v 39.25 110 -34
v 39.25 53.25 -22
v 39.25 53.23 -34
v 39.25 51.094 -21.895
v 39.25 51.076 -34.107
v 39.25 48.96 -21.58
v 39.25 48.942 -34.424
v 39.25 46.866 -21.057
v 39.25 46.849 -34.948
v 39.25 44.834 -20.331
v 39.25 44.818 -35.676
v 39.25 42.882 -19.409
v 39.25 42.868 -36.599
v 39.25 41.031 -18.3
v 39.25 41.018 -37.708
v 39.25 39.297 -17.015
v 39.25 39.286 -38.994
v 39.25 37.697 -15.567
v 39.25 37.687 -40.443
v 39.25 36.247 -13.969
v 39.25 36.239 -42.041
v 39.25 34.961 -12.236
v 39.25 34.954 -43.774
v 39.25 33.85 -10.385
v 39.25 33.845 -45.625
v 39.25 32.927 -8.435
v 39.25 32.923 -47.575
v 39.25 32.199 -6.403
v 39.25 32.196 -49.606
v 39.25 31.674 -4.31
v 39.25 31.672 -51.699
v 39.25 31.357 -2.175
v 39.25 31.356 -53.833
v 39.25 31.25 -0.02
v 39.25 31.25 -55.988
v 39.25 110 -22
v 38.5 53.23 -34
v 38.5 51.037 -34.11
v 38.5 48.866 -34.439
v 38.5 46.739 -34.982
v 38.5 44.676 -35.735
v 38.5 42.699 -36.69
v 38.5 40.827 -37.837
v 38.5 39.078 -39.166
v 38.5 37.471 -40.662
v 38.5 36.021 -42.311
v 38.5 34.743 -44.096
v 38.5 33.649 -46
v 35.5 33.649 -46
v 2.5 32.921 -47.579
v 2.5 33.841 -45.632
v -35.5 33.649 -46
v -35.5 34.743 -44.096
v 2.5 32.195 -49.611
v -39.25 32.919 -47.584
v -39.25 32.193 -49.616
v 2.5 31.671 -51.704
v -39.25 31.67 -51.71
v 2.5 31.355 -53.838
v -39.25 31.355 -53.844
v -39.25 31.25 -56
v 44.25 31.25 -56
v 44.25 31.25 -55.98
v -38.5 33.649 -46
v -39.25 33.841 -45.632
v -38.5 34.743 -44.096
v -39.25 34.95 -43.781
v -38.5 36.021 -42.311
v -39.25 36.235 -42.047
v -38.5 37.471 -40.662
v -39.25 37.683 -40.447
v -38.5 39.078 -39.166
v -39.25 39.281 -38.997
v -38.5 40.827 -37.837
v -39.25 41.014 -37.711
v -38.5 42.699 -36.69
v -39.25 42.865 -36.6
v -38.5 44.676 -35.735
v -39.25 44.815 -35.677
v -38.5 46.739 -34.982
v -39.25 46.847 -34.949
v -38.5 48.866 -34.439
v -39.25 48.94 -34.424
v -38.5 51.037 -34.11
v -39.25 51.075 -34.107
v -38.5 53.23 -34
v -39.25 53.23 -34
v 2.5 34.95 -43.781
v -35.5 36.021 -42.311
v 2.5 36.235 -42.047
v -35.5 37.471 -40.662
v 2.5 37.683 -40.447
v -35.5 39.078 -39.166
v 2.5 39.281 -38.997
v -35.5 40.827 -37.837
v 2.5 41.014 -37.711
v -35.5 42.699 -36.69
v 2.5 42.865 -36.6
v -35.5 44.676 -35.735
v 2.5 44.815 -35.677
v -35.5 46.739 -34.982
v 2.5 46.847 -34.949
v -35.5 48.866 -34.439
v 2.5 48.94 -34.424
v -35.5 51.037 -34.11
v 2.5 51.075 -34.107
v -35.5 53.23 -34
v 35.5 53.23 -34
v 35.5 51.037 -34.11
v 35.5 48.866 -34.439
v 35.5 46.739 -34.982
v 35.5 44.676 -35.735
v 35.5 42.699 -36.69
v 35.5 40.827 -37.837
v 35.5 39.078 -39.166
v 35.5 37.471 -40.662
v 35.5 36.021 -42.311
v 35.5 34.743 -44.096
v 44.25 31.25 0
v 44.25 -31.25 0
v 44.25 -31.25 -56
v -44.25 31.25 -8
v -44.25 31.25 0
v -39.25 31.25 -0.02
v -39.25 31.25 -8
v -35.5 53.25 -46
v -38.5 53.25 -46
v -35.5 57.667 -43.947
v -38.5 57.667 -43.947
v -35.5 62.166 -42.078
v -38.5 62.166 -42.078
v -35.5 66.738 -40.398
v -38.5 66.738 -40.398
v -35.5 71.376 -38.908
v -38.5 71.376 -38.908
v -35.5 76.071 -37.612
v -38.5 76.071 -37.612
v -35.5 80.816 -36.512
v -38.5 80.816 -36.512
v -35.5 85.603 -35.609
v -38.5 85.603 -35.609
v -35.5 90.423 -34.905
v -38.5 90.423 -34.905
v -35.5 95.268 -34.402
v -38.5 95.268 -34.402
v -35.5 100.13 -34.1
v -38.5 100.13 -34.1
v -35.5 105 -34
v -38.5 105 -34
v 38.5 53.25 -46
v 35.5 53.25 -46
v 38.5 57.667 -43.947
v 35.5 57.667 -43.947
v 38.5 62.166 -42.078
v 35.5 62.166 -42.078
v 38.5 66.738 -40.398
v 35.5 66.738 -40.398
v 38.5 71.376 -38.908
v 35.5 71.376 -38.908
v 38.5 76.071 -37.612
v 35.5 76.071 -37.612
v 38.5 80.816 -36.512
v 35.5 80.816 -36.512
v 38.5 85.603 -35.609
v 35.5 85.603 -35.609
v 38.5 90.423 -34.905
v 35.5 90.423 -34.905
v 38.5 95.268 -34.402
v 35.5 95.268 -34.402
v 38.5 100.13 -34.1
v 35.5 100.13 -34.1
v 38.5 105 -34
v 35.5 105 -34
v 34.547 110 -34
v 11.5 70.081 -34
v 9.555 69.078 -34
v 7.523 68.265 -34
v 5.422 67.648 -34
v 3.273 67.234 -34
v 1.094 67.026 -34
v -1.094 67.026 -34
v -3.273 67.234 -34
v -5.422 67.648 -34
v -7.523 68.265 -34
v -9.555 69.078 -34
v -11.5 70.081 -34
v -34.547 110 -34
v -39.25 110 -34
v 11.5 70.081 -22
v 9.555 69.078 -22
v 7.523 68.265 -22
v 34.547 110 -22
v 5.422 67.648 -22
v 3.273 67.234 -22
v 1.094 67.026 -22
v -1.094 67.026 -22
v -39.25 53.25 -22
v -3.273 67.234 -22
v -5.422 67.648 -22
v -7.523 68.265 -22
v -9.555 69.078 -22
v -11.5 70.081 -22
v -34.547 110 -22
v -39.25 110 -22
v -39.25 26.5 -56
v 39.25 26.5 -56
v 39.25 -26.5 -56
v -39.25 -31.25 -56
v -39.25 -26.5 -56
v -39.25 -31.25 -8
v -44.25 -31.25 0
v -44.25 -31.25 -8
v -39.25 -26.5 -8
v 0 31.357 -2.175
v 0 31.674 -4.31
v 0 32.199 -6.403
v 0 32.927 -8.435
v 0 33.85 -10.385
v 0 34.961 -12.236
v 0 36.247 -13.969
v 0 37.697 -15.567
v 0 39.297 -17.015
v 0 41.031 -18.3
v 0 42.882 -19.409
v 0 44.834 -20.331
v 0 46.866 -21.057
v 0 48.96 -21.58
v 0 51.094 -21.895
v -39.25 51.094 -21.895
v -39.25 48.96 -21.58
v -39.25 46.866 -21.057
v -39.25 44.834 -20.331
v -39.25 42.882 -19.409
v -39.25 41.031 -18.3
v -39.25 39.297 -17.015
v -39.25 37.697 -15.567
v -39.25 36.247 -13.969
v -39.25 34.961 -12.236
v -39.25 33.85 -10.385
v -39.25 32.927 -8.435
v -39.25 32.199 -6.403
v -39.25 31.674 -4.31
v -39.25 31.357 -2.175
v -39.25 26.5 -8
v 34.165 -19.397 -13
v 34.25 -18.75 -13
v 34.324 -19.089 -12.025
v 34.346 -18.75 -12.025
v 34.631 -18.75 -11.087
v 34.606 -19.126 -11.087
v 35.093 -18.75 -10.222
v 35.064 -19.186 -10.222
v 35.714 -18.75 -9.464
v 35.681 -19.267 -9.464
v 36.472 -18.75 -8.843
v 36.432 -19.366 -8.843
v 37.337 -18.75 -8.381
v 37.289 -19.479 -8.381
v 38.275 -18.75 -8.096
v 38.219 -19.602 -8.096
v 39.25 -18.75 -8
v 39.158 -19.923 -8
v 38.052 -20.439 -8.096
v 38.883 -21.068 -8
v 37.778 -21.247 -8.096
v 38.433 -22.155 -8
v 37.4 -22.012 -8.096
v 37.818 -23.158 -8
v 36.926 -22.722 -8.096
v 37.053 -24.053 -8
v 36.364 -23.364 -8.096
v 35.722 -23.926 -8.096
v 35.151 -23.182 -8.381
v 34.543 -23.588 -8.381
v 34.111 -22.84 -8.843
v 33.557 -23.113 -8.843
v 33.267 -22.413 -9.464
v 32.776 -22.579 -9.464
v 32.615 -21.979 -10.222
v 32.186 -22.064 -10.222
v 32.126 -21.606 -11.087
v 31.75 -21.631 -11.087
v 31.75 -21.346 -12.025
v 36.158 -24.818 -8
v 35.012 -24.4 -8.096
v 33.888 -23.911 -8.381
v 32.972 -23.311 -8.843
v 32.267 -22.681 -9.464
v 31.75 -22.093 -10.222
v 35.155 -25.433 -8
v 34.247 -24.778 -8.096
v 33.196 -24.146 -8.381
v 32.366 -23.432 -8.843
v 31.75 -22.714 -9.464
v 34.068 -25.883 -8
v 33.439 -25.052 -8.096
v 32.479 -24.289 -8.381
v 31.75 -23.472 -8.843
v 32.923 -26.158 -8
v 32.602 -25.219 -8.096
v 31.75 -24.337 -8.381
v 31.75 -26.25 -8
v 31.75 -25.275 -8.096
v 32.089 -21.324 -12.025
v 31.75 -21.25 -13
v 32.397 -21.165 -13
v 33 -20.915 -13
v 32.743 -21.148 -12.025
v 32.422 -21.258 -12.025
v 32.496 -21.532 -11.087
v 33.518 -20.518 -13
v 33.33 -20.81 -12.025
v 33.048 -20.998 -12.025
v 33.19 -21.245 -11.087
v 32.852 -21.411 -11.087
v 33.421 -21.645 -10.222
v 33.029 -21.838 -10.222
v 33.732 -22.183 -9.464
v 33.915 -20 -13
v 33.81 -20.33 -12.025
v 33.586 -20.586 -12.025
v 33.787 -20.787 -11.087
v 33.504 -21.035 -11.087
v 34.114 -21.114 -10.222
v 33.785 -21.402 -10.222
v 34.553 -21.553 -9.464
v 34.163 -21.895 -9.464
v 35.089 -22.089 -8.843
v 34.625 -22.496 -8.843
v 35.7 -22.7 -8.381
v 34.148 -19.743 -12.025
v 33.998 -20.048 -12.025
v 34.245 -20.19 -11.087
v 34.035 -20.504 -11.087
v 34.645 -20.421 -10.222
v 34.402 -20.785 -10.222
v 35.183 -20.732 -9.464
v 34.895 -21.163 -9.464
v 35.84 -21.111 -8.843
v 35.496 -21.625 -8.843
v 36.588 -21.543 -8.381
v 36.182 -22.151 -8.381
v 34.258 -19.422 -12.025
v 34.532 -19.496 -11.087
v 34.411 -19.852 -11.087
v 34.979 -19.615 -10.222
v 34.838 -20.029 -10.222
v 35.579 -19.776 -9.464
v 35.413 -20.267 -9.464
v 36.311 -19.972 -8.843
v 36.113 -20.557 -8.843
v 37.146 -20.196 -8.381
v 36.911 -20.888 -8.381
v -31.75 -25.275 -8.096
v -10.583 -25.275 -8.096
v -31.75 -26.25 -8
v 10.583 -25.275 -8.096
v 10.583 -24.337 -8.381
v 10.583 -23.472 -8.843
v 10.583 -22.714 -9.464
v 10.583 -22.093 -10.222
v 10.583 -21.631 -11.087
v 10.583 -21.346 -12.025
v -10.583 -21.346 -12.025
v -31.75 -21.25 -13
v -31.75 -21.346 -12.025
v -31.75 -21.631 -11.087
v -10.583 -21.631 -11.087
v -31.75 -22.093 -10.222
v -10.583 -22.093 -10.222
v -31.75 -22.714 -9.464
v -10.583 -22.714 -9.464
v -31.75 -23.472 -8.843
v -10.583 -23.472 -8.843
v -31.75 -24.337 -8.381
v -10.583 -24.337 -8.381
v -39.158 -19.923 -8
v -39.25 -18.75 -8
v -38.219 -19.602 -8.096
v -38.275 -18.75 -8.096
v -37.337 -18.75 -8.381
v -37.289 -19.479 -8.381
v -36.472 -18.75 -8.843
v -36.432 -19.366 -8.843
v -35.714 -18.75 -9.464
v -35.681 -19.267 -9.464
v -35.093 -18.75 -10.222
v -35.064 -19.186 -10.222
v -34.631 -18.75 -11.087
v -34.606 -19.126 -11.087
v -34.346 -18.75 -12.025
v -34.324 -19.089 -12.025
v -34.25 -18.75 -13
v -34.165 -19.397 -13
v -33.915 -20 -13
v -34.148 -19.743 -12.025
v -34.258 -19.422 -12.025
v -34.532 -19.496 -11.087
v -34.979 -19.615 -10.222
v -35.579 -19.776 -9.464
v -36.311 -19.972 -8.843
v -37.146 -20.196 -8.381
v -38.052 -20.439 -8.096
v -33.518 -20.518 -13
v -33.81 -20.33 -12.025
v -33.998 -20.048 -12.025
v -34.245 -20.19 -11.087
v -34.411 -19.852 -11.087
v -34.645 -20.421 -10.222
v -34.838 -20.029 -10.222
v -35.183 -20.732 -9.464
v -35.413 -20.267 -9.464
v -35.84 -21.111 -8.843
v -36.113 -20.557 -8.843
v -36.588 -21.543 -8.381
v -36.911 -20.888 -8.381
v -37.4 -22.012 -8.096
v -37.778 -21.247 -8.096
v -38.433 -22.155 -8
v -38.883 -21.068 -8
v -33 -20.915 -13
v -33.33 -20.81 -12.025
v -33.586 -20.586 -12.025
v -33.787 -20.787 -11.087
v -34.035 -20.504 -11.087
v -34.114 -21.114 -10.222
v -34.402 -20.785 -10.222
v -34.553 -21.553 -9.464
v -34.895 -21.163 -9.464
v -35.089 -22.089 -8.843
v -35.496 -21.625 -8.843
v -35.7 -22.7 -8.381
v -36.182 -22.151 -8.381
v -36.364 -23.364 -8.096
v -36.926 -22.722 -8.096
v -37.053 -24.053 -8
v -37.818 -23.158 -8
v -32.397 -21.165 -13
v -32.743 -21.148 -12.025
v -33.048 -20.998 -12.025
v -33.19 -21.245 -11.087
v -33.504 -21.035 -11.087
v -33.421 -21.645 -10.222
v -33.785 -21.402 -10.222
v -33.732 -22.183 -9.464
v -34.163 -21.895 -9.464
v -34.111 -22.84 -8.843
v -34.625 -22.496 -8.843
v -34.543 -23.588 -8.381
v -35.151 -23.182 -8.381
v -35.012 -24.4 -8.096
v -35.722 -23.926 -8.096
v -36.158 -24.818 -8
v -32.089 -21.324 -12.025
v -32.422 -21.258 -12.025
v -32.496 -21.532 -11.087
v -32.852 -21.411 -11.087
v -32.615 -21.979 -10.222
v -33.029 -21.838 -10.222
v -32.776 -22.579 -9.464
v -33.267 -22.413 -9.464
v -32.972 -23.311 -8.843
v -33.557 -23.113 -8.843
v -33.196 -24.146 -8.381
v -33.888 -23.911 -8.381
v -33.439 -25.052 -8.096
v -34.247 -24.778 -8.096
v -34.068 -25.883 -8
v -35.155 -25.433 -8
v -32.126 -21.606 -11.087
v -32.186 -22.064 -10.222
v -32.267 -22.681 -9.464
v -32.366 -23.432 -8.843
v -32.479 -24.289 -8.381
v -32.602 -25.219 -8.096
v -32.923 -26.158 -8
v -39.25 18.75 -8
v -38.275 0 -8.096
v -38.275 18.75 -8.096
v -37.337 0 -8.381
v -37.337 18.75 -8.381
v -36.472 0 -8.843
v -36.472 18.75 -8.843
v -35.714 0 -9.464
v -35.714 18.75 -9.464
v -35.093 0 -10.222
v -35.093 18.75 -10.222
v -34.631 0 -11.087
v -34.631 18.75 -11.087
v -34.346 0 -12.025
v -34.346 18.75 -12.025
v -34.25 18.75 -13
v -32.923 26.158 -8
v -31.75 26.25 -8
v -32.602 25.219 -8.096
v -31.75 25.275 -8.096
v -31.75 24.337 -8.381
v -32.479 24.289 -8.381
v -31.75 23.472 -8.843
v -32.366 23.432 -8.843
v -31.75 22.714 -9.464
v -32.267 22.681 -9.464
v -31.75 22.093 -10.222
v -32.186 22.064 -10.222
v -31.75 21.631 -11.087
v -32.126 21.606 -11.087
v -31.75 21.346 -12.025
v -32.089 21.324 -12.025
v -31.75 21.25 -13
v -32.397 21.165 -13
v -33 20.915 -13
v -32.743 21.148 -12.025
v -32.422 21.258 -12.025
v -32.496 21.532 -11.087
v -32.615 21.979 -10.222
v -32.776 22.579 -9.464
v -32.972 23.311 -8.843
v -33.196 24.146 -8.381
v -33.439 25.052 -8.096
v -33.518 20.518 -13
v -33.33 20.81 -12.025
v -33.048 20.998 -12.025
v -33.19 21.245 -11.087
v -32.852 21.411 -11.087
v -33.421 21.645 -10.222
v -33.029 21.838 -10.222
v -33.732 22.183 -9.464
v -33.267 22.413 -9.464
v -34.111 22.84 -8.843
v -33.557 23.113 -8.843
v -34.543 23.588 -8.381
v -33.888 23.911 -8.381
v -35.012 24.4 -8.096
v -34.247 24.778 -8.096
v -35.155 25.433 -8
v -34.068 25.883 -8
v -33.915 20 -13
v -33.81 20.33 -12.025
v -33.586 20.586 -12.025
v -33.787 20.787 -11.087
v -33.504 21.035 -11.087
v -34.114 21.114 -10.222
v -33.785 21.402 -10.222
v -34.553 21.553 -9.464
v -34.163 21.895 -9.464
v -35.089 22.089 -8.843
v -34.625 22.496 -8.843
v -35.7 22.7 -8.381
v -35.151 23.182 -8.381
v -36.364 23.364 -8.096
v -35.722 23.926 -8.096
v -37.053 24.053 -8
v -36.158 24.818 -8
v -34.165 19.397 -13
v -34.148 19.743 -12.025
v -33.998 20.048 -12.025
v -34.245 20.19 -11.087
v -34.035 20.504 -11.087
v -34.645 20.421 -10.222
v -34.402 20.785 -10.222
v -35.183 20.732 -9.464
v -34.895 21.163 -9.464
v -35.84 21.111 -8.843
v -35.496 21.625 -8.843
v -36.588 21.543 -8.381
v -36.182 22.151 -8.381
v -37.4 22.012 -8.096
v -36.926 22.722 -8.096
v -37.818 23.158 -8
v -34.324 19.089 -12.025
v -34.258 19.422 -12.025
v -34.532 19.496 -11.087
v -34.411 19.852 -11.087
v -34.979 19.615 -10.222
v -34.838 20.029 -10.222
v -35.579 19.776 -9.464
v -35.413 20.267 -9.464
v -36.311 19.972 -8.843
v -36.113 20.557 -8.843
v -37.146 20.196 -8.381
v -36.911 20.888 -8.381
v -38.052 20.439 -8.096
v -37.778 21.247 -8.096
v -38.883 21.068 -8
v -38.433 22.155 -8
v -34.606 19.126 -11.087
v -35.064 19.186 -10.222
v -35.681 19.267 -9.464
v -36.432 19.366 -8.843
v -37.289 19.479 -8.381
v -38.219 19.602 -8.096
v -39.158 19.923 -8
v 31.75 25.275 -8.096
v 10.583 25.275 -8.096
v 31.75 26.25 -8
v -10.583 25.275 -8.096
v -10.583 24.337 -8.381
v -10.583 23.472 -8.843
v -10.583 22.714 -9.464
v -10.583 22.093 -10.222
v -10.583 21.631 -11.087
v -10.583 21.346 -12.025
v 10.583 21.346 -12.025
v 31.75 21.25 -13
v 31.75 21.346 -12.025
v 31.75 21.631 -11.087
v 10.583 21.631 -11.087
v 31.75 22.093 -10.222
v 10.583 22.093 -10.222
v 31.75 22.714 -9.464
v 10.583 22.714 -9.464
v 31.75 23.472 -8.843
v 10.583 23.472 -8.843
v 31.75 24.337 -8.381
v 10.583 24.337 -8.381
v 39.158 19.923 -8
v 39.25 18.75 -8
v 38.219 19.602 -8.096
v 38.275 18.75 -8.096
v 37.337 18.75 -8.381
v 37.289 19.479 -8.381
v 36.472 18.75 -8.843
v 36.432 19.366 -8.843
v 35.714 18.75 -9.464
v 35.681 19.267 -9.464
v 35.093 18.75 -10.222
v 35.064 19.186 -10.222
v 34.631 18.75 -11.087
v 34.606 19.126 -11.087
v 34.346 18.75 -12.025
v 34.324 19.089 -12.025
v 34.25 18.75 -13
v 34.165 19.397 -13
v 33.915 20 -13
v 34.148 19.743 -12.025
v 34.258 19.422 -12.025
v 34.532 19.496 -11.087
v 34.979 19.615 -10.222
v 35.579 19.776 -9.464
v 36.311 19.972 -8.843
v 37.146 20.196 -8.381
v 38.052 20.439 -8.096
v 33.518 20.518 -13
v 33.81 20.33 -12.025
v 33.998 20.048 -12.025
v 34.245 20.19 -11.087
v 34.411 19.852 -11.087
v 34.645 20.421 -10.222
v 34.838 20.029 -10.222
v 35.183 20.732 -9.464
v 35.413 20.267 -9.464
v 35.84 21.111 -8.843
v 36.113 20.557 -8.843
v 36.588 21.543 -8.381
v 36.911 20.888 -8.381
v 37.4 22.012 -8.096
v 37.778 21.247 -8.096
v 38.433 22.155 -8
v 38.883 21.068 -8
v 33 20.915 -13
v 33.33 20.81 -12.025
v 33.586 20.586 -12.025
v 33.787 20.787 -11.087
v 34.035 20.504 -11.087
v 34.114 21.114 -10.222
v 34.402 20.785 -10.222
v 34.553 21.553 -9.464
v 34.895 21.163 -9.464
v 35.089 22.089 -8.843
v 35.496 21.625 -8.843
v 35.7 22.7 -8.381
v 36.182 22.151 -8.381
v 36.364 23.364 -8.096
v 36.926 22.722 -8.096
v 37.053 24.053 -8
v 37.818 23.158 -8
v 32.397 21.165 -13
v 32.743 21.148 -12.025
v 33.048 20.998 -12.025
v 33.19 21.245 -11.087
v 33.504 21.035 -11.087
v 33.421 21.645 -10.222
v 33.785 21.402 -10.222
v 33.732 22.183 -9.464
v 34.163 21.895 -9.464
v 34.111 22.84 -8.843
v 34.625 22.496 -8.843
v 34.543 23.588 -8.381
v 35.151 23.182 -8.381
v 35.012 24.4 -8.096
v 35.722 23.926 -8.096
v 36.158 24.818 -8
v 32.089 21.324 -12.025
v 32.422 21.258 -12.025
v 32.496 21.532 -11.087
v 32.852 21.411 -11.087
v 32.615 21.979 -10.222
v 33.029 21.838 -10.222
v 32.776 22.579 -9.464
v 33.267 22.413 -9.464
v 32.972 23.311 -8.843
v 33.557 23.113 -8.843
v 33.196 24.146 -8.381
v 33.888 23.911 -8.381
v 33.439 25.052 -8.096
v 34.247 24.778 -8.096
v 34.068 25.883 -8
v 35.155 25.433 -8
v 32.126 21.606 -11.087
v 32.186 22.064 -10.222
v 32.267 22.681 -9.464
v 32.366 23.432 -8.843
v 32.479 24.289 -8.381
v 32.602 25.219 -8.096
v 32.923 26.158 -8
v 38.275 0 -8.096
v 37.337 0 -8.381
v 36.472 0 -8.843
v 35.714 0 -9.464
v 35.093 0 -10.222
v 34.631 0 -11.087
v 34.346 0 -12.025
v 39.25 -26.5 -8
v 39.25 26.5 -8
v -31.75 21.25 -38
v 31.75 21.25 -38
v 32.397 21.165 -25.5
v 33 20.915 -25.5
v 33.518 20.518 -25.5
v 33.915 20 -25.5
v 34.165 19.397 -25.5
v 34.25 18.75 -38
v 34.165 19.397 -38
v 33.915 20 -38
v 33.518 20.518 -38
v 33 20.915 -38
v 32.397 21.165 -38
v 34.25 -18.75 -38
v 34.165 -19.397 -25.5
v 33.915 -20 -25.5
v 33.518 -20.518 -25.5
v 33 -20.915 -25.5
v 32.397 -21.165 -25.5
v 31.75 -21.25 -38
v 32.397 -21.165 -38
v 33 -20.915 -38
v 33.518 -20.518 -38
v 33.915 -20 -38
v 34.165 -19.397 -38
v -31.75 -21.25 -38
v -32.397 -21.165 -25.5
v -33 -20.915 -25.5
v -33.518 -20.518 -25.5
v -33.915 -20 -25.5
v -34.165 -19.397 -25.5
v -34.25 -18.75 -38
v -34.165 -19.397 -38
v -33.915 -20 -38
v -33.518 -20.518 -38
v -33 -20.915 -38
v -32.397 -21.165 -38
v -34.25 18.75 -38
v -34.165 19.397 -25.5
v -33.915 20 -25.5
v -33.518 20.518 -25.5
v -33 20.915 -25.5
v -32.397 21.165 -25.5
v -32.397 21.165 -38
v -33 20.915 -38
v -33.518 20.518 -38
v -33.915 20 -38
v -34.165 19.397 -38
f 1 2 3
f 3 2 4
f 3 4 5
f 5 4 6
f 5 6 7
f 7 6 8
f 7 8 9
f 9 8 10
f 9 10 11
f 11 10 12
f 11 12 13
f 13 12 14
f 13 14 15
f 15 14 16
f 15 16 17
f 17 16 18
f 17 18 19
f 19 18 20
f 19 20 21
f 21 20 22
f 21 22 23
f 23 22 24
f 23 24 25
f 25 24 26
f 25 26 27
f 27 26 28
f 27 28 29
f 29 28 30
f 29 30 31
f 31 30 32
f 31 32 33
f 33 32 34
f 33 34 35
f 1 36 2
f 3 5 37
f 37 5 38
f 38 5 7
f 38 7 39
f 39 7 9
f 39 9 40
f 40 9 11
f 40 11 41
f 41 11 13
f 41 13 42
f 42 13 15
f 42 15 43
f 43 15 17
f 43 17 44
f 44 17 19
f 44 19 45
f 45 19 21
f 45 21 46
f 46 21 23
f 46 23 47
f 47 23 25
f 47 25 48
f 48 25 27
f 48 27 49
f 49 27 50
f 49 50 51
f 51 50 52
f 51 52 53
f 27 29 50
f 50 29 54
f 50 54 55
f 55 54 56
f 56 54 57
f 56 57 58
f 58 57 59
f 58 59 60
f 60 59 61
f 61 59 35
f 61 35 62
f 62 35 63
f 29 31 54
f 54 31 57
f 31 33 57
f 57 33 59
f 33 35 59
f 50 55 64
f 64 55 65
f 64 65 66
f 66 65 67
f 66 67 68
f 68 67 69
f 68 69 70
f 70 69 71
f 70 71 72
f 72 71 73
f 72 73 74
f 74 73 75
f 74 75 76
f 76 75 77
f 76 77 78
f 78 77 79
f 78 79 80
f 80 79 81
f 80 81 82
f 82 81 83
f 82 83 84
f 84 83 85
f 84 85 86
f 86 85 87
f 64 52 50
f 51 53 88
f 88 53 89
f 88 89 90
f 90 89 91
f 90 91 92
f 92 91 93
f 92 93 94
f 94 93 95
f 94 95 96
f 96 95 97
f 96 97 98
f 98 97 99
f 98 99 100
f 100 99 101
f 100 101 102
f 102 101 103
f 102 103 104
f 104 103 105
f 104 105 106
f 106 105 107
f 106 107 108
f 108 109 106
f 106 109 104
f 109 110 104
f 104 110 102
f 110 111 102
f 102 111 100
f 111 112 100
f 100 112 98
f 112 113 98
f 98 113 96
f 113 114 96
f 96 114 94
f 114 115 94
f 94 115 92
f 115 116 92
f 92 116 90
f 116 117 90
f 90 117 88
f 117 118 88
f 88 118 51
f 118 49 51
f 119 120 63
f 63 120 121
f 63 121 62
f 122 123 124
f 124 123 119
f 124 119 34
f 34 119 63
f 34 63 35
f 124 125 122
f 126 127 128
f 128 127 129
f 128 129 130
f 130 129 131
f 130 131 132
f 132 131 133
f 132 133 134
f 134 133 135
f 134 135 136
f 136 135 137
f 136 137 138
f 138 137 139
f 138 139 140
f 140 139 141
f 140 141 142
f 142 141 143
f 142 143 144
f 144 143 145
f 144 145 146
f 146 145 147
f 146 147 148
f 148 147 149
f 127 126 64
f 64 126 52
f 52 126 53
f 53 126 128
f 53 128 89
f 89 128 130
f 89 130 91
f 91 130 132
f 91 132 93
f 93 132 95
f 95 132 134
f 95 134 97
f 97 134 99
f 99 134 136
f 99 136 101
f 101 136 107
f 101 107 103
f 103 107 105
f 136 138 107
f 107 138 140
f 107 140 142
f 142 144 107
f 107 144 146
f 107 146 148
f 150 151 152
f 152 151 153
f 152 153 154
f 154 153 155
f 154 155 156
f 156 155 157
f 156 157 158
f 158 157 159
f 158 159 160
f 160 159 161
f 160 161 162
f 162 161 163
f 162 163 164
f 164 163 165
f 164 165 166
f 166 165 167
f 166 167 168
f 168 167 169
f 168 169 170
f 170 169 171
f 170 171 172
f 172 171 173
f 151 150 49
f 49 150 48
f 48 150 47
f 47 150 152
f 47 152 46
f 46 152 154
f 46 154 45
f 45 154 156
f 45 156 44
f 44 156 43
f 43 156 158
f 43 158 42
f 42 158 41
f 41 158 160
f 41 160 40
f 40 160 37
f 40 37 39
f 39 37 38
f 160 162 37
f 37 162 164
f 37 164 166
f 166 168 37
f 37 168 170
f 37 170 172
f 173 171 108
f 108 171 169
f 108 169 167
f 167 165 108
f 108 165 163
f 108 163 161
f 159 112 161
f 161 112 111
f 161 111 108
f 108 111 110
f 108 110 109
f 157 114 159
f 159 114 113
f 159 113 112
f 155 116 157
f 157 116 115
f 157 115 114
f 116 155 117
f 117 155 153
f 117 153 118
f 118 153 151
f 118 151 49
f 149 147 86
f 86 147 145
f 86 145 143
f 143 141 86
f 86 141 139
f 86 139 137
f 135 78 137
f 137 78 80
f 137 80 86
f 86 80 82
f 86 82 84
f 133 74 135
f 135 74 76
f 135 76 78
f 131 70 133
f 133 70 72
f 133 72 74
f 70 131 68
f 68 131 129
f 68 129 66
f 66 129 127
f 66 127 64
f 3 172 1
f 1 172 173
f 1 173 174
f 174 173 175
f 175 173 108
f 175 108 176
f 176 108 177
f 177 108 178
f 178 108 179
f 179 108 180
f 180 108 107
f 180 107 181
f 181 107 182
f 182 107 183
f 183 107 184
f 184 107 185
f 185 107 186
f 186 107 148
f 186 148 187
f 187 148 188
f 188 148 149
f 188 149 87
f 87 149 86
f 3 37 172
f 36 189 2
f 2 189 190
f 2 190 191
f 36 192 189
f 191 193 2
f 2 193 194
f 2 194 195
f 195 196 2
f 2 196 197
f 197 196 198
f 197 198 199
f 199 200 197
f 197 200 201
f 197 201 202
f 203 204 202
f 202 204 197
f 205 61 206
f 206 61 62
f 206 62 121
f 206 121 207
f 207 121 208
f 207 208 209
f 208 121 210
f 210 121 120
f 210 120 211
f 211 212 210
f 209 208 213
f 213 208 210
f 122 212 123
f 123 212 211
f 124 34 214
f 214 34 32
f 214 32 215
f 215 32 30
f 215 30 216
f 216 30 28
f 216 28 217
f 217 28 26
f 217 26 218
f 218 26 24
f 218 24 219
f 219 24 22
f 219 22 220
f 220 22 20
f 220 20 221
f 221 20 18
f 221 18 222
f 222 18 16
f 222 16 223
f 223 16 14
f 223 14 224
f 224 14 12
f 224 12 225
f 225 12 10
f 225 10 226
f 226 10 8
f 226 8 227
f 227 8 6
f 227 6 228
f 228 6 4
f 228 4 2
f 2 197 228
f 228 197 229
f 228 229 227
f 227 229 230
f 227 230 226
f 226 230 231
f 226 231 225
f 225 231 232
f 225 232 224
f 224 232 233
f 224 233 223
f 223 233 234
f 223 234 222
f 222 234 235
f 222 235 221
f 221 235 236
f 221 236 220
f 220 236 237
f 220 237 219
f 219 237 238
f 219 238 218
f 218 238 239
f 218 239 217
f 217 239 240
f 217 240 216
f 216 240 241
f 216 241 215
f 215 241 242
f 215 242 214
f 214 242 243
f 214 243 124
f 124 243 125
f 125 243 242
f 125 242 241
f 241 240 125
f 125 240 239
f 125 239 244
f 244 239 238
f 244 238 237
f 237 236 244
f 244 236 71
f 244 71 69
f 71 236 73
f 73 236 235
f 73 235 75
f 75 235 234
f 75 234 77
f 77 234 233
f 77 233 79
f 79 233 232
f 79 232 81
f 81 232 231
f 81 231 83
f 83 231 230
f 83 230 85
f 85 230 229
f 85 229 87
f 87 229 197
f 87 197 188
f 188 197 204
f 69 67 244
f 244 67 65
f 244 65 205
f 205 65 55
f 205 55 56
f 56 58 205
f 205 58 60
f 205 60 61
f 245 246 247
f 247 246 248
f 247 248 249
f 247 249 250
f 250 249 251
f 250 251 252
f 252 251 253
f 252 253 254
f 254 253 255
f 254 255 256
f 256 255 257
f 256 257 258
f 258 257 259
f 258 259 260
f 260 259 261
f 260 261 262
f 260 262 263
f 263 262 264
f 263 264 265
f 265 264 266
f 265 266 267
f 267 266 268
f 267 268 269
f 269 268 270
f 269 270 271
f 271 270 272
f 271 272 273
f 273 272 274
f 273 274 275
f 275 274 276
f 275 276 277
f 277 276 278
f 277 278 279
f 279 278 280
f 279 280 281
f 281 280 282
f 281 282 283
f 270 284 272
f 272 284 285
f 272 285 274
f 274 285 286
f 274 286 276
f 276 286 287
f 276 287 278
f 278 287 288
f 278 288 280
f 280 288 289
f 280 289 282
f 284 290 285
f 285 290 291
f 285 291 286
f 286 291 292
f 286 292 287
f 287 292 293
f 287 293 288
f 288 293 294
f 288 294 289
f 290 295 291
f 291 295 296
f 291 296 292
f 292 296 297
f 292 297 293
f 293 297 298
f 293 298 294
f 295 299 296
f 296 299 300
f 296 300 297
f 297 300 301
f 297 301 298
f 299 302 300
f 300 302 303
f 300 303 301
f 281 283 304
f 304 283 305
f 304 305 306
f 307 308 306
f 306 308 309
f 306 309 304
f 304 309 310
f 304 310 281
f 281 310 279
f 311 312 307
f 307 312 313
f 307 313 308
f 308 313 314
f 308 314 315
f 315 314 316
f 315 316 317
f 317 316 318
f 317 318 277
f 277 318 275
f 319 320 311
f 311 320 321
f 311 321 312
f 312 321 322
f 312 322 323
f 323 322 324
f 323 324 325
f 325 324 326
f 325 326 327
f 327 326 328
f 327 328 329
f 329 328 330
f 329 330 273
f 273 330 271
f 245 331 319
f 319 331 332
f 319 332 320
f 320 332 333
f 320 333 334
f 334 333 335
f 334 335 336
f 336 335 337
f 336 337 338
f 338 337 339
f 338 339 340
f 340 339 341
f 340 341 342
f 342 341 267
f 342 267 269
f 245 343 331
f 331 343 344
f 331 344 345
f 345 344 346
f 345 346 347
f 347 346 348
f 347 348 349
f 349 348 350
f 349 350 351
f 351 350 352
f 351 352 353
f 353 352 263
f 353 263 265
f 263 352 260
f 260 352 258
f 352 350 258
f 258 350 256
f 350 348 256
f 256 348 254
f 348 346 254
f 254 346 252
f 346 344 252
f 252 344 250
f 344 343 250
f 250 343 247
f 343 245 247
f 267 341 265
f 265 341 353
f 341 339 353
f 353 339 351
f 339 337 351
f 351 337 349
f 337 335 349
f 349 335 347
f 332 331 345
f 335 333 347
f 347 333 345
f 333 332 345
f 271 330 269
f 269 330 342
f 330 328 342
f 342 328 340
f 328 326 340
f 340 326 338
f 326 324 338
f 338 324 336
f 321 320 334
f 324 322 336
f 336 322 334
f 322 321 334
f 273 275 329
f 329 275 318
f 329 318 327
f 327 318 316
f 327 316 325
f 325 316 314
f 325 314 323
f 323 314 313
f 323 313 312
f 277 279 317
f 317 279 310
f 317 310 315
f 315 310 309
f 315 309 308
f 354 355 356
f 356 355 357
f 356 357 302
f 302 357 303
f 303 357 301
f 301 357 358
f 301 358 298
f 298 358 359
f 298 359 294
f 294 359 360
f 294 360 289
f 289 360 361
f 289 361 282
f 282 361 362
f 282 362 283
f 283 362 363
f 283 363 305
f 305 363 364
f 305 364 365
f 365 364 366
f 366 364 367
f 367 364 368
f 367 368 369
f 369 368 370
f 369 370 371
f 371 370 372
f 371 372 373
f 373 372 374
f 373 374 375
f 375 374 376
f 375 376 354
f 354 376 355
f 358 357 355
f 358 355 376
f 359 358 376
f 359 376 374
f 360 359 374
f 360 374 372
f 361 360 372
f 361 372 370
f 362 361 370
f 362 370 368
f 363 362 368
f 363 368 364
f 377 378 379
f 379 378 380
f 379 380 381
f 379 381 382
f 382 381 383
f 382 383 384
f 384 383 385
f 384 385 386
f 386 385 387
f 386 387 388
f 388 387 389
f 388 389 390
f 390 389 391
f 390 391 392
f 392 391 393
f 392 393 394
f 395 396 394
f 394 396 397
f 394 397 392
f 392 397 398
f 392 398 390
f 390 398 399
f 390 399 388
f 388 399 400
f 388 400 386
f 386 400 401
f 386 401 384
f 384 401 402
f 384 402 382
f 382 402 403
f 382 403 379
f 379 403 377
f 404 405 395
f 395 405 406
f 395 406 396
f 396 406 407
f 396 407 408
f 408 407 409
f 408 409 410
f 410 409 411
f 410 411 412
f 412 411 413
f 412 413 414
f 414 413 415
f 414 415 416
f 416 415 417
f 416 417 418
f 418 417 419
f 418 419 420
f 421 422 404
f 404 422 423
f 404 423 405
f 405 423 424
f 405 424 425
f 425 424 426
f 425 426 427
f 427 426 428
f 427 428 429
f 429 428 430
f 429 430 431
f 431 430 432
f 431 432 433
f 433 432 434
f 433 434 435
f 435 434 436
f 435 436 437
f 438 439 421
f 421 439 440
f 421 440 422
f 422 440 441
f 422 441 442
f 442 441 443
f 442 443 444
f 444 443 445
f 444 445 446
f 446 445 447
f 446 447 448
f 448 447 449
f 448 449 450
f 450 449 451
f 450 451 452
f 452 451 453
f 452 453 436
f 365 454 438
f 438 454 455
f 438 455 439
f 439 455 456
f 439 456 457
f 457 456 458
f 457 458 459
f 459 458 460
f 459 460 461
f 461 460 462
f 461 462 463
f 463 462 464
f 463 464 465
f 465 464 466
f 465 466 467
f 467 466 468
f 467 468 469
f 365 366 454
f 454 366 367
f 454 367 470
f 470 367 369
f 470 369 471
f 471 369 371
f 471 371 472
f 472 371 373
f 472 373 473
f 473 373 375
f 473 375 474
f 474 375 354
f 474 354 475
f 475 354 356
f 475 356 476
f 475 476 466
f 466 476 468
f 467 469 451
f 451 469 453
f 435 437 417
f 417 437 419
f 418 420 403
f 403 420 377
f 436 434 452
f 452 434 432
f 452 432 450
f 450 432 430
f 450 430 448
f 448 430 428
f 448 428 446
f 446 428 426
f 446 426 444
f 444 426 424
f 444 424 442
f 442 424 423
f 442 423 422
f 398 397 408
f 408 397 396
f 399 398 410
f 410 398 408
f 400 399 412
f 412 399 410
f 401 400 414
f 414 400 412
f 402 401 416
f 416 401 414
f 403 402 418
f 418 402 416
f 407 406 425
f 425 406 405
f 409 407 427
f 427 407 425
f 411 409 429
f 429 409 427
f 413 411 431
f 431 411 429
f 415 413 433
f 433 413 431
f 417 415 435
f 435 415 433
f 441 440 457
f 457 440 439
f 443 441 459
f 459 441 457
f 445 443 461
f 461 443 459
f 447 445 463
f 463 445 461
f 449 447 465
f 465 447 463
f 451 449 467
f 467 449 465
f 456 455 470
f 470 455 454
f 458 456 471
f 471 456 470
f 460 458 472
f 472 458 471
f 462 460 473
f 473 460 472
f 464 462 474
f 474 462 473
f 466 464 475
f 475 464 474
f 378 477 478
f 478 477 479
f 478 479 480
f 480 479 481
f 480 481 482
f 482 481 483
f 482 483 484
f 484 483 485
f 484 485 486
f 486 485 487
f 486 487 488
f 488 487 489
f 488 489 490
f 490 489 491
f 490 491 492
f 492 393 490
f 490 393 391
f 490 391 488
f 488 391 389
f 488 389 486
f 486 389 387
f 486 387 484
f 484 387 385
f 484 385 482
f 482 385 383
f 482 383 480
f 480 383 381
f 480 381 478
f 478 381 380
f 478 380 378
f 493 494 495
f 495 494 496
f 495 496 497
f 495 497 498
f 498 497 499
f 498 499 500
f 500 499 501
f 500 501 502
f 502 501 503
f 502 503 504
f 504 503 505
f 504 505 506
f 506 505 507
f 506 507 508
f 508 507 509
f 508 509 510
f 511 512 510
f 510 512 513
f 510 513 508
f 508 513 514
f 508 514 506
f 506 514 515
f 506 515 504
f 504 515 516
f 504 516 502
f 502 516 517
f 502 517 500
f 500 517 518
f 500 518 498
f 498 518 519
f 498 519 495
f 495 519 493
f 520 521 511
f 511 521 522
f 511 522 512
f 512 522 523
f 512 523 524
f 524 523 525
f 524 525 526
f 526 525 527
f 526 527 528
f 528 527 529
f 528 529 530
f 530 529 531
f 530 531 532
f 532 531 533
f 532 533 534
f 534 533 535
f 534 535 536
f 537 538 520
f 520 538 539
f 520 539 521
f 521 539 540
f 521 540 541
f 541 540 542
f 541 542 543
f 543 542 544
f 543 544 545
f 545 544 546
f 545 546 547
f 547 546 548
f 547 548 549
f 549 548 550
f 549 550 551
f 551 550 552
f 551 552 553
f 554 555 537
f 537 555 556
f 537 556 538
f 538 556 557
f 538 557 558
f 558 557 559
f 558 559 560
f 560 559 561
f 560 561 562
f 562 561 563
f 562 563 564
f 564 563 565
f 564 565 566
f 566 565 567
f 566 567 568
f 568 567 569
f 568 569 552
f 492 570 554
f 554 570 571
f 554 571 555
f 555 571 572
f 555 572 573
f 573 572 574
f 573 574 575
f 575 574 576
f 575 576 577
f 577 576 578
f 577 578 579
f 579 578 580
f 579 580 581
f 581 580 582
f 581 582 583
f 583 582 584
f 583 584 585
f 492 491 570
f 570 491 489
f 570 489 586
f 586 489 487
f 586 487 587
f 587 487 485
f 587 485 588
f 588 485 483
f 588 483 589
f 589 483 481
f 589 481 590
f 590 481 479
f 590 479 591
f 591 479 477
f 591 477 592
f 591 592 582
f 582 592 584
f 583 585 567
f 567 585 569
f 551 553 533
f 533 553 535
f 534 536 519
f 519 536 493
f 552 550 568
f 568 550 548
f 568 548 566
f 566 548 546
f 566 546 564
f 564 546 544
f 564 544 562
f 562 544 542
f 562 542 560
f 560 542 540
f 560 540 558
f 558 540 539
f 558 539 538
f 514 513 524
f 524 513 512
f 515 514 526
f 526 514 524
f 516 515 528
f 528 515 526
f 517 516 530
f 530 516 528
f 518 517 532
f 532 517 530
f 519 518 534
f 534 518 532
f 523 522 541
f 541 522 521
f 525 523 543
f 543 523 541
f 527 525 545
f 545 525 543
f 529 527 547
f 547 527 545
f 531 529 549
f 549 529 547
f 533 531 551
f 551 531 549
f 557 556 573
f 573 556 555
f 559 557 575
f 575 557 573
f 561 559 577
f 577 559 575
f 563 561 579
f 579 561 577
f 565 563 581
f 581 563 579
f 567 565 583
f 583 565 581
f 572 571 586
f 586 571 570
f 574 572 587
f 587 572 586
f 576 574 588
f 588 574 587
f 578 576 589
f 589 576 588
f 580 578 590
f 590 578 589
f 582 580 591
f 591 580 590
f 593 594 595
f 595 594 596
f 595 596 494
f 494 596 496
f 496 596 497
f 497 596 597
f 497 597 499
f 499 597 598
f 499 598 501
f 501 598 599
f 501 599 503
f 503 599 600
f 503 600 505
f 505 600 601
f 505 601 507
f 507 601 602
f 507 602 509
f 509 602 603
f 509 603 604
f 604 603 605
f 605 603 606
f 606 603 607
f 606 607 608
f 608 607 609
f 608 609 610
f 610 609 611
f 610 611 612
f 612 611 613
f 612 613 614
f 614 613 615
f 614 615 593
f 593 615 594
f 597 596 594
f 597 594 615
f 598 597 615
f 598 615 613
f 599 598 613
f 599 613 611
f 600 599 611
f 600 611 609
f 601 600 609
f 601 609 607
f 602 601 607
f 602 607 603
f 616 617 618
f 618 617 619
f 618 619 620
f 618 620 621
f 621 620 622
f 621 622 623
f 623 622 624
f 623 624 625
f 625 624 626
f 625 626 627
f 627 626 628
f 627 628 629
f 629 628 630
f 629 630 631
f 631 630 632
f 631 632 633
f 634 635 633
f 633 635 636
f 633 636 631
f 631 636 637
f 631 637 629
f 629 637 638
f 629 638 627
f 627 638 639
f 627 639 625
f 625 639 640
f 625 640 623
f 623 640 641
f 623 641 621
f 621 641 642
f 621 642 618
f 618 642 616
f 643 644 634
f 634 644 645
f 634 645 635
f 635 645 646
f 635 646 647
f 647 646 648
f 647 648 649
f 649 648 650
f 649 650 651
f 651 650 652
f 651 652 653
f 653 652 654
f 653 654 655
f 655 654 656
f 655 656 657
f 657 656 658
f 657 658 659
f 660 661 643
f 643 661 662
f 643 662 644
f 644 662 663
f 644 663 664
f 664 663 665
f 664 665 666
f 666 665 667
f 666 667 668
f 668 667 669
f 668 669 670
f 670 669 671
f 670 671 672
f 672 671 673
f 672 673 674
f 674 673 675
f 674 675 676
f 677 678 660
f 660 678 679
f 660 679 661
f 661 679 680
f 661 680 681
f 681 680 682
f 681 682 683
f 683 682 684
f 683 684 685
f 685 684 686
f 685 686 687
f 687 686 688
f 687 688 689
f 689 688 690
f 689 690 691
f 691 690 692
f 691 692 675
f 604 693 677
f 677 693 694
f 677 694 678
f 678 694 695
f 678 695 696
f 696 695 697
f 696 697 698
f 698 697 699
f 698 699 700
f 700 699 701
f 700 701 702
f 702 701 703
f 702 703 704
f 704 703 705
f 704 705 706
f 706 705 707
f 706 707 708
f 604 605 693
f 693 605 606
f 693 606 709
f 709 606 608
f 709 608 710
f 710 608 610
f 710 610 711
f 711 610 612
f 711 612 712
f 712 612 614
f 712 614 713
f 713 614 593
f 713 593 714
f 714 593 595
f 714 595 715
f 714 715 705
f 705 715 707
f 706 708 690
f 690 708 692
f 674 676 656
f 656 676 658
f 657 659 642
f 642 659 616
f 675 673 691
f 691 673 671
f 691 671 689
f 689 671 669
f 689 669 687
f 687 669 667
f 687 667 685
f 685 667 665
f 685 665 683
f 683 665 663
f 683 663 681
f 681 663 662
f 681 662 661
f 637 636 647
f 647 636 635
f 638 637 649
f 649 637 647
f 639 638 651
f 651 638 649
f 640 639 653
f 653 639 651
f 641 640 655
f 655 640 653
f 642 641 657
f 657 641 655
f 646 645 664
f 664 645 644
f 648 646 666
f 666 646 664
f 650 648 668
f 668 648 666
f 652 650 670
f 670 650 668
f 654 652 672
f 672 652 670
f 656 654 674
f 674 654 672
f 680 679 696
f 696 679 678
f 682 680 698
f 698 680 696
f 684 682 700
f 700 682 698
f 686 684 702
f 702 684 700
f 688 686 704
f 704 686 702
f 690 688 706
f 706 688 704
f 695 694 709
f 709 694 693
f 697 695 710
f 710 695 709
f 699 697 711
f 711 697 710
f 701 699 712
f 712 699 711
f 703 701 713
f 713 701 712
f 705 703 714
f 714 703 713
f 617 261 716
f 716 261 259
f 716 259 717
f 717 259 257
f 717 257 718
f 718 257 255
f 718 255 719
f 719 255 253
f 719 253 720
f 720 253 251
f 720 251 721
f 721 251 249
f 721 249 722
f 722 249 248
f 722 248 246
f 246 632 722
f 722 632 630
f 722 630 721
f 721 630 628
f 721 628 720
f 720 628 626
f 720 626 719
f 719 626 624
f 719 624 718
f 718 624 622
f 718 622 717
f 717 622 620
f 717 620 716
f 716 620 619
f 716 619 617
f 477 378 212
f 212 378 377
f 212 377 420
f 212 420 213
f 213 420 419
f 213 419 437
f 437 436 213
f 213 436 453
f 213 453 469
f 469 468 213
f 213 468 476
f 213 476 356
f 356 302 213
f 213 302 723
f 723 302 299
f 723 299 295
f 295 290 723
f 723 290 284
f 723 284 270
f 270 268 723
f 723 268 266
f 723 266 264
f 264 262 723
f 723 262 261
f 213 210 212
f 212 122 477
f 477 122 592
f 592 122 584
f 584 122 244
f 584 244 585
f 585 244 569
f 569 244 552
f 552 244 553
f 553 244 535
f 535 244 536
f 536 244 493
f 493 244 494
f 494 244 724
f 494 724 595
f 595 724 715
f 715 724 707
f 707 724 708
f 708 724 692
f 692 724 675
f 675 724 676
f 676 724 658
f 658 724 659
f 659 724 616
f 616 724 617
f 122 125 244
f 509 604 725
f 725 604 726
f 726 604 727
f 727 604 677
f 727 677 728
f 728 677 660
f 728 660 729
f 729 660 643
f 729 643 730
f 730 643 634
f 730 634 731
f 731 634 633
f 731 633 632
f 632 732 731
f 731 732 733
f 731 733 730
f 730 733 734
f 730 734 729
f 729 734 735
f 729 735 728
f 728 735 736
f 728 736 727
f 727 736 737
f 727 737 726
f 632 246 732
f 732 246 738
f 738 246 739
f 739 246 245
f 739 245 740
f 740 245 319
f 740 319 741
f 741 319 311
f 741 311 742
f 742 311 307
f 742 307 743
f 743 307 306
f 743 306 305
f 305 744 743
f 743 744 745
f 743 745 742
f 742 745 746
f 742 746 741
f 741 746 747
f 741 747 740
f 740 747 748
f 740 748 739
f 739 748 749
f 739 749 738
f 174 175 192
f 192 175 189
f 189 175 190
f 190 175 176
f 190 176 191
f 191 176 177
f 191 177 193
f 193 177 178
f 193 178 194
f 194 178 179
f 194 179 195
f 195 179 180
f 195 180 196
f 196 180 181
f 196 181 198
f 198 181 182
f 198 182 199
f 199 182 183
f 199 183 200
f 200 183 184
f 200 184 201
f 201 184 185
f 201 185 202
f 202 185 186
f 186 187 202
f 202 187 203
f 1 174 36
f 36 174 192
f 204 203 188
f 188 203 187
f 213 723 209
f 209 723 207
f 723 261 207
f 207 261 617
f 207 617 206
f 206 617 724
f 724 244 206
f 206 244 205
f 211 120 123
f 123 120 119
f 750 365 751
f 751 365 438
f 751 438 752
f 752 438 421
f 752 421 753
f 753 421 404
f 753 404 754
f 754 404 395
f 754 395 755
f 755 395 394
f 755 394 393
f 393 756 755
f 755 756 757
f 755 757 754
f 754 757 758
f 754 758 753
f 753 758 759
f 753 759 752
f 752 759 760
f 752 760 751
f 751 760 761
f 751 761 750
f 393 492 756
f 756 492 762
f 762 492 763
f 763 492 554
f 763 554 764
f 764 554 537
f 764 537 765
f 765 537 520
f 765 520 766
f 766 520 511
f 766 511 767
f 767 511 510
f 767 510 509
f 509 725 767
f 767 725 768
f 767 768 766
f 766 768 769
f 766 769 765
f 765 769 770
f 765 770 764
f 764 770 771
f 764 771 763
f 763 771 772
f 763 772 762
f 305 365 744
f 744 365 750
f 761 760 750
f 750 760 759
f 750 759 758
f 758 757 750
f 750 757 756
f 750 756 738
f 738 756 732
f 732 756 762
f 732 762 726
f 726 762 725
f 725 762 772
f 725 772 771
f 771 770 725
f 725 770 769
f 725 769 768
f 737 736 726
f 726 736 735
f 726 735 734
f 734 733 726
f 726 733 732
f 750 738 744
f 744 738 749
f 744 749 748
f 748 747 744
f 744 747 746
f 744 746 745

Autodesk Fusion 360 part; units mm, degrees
ref_plane "WorkPlane1" through (0, 0, -38) normal (0, 0, 1) x (1, 0, 0)
sketch "Sketch1" plane through (0, 0, -38) normal (0, 0, 1) x (1, 0, 0)
  line L0 (-34.25, -21.25) -> (34.25, -21.25)
  line L1 (34.25, -21.25) -> (34.25, 21.25)
  line L2 (34.25, 21.25) -> (-34.25, 21.25)
  line L3 (-34.25, 21.25) -> (-34.25, -21.25)
extrude "Extrude1" add sketch "Sketch1" along normal blind 30
fillet "Fillet1" radius 2.5 4 edges at (-34.25, 21.25, -23) (34.25, 21.25, -23) (34.25, -21.25, -23) (-34.25, -21.25, -23)
ref_plane "WorkPlane2" through (0, 0, -8) normal (0, 0, 1) x (1, 0, 0)
sketch "Sketch2" plane through (0, 0, -8) normal (0, 0, 1) x (1, 0, 0)
  line L0 (-44.25, -31.25) -> (44.25, -31.25)
  line L1 (44.25, -31.25) -> (44.25, 31.25)
  line L2 (44.25, 31.25) -> (-44.25, 31.25)
  line L3 (-44.25, 31.25) -> (-44.25, -31.25)
extrude "Extrude2" add sketch "Sketch2" along normal blind 8
ref_plane "WorkPlane3" through (0, 0, -38) normal (0, 0, 1) x (1, 0, 0)
sketch "Sketch3" plane through (0, 0, -38) normal (0, 0, 1) x (1, 0, 0)
  line L0 (-44.25, -31.25) -> (44.25, -31.25)
  line L1 (44.25, -31.25) -> (44.25, 31.25)
  line L2 (44.25, 31.25) -> (-44.25, 31.25)
  line L3 (-44.25, 31.25) -> (-44.25, -31.25)
  line L4 (-39.25, -26.5) -> (39.25, -26.5)
  line L5 (39.25, -26.5) -> (39.25, 26.5)
  line L6 (39.25, 26.5) -> (-39.25, 26.5)
  line L7 (-39.25, 26.5) -> (-39.25, -26.5)
extrude "Extrude3" add sketch "Sketch3" along normal blind 30
ref_plane "WorkPlane4" through (0, 0, -34) normal (0, 0, 1) x (1, 0, 0)
sketch "Sketch4" plane through (0, 0, -34) normal (0, 0, 1) x (1, 0, 0)
  line L0 (-44.25, 26.5) -> (44.25, 26.5)
  line L1 (44.25, 26.5) -> (44.25, 110)
  line L2 (44.25, 110) -> (-44.25, 110)
  line L3 (-44.25, 110) -> (-44.25, 26.5)
extrude "Extrude4" add sketch "Sketch4" along normal blind 12
sketch "Sketch5" plane through (0, 0, -34) normal (0, 0, 1) x (1, 0, 0)
  line L0 (-34.547, 110) -> (-11.5, 70.0814)
  arc A0 (-11.5, 70.0814) -> (11.5, 70.0814) centre (0, 90) ccw
  line L1 (11.5, 70.0814) -> (34.547, 110)
  line L2 (34.547, 110) -> (34.547, 115)
  line L3 (34.547, 115) -> (-34.547, 115)
  line L4 (-34.547, 115) -> (-34.547, 110)
extrude "Extrude5" cut sketch "Sketch5" along normal blind 12
fillet "Fillet2" radius 5 64 edges at (33.5178, -20.5178, -8) (0, -21.25, -8) (-33.5178, -20.5178, -8) (-34.25, 0, -8) (-33.5178, 20.5178, -8) (0, 21.25, -8) (33.5178, 20.5178, -8) (34.25, 0, -8) (34.25, 0, -8) (33.5178, 20.5178, -8) (0, 21.25, -8) (-33.5178, 20.5178, -8) (-34.25, 0, -8) (-33.5178, -20.5178, -8) (0, -21.25, -8) (33.5178, -20.5178, -8) (33.5178, 20.5178, -8) (34.25, 0, -8) (33.5178, -20.5178, -8) (0, -21.25, -8) (-33.5178, -20.5178, -8) (-34.25, 0, -8) (-33.5178, 20.5178, -8) (0, 21.25, -8) (0, 21.25, -8) (-33.5178, 20.5178, -8) (-34.25, 0, -8) (-33.5178, -20.5178, -8) (0, -21.25, -8) (33.5178, -20.5178, -8) (34.25, 0, -8) (33.5178, 20.5178, -8) (-33.5178, 20.5178, -8) (0, 21.25, -8) (33.5178, 20.5178, -8) (34.25, 0, -8) (33.5178, -20.5178, -8) (0, -21.25, -8) (-33.5178, -20.5178, -8) (-34.25, 0, -8) (-34.25, 0, -8) (-33.5178, -20.5178, -8) (0, -21.25, -8) (33.5178, -20.5178, -8) (34.25, 0, -8) (33.5178, 20.5178, -8) (0, 21.25, -8) (-33.5178, 20.5178, -8) (-33.5178, -20.5178, -8) (-34.25, 0, -8) (-33.5178, 20.5178, -8) (0, 21.25, -8) (33.5178, 20.5178, -8) (34.25, 0, -8) (33.5178, -20.5178, -8) (0, -21.25, -8) (0, -21.25, -8) (33.5178, -20.5178, -8) (34.25, 0, -8) (33.5178, 20.5178, -8) (0, 21.25, -8) (-33.5178, 20.5178, -8) (-34.25, 0, -8) (-33.5178, -20.5178, -8)
ref_plane "WorkPlane5" through (0, 0, -38) normal (0, 0, 1) x (1, 0, 0)
sketch "Sketch6" plane through (0, 0, -38) normal (0, 0, 1) x (1, 0, 0)
ref_plane "WorkPlane6" through (-39.25, 0, 0) normal (1, 0, 0) x (0, 1, 0)
sketch "Sketch8" plane through (-39.25, 0, 0) normal (1, 0, 0) x (0, 0, -1)
ref_plane "WorkPlane7" through (-39.25, 0, 0) normal (1, 0, 0) x (0, 1, 0)
sketch "Sketch9" plane through (-39.25, 0, 0) normal (1, 0, 0) x (0, 0, -1)
  line L0 (0, 31.25) -> (22, 31.25)
  line L1 (22, 31.25) -> (22, 53.25)
  arc A0 (0, 31.25) -> (22, 53.25) centre (0.0125, 53.2375) ccw
extrude "Extrude6" add sketch "Sketch9" along normal blind 83.5
ref_plane "WorkPlane8" through (0, 0, -38) normal (0, 0, 1) x (1, 0, 0)
sketch "Sketch10" plane through (0, 0, -38) normal (0, 0, 1) x (1, 0, 0)
  line L0 (-44.25, -31.25) -> (-39.25, -31.25)
  line L1 (-39.25, -31.25) -> (-39.25, 31.25)
  line L2 (-39.25, 31.25) -> (-44.25, 31.25)
  line L3 (-44.25, 31.25) -> (-44.25, -31.25)
extrude "Extrude7" cut sketch "Sketch10" along normal blind 30
ref_plane "WorkPlane9" through (0, 0, -56) normal (0, 0, 1) x (1, 0, 0)
sketch "Sketch11" plane through (0, 0, -56) normal (0, 0, 1) x (1, 0, 0)
  line L0 (-44.25, -31.25) -> (44.25, -31.25)
  line L1 (44.25, -31.25) -> (44.25, 31.25)
  line L2 (44.25, 31.25) -> (-44.25, 31.25)
  line L3 (-44.25, 31.25) -> (-44.25, -31.25)
  line L4 (-39.25, -26.5) -> (39.25, -26.5)
  line L5 (39.25, -26.5) -> (39.25, 26.5)
  line L6 (39.25, 26.5) -> (-39.25, 26.5)
  line L7 (-39.25, 26.5) -> (-39.25, -26.5)
extrude "Extrude8" add sketch "Sketch11" along normal blind 18
ref_plane "WorkPlane10" through (0, 0, -56) normal (0, 0, 1) x (1, 0, 0)
sketch "Sketch12" plane through (0, 0, -56) normal (0, 0, 1) x (1, 0, 0)
  line L0 (-44.25, -31.25) -> (-39.25, -31.25)
  line L1 (-39.25, -31.25) -> (-39.25, 31.25)
  line L2 (-39.25, 31.25) -> (-44.25, 31.25)
  line L3 (-44.25, 31.25) -> (-44.25, -31.25)
extrude "Extrude9" cut sketch "Sketch12" along normal blind 18
ref_plane "WorkPlane11" through (0, 0, -34) normal (0, 0, 1) x (1, 0, 0)
sketch "Sketch13" plane through (0, 0, -34) normal (0, 0, 1) x (1, 0, 0)
  line L0 (-44.25, 31.25) -> (-39.25, 31.25)
  line L1 (-39.25, 31.25) -> (-39.25, 110)
  line L2 (-39.25, 110) -> (-44.25, 110)
  line L3 (-44.25, 110) -> (-44.25, 31.25)
extrude "Extrude10" cut sketch "Sketch13" along normal blind 12
ref_plane "WorkPlane12" through (-39.25, 0, 0) normal (1, 0, 0) x (0, 1, 0)
sketch "Sketch14" plane through (-39.25, 0, 0) normal (1, 0, 0) x (0, 0, -1)
  line L0 (56, 31.25) -> (34, 31.25)
  line L1 (34, 31.25) -> (34, 53.25)
  arc A0 (34, 53.25) -> (56, 31.25) centre (55.9875, 53.2375) ccw
extrude "Extrude11" add sketch "Sketch14" along normal blind 83.5
ref_plane "WorkPlane13" through (0, 0, -46) normal (0, 0, 1) x (1, 0, 0)
sketch "Sketch15" plane through (0, 0, -46) normal (0, 0, 1) x (1, 0, 0)
  line L0 (-38.5, 31.25) -> (-35.5, 31.25)
  line L1 (-35.5, 31.25) -> (-35.5, 105)
  line L2 (-35.5, 105) -> (-38.5, 105)
  line L3 (-38.5, 105) -> (-38.5, 31.25)
  line L4 (35.5, 31.25) -> (38.5, 31.25)
  line L5 (38.5, 31.25) -> (38.5, 105)
  line L6 (38.5, 105) -> (35.5, 105)
  line L7 (35.5, 105) -> (35.5, 31.25)
extrude "Extrude12" add sketch "Sketch15" along normal blind 12
ref_plane "WorkPlane14" through (35.5, 0, 0) normal (1, 0, 0) x (0, 1, 0)
sketch "Sketch16" plane through (35.5, 0, 0) normal (1, 0, 0) x (0, 0, -1)
  arc A0 (34, 105) -> (46, 53.25) centre (151.5034, 104.9809) ccw
  line L0 (34, 105) -> (46, 105)
  line L1 (46, 105) -> (46, 53.25)
extrude "Extrude13" cut sketch "Sketch16" along normal blind 3
ref_plane "WorkPlane15" through (-38.5, 0, 0) normal (1, 0, 0) x (0, 1, 0)
sketch "Sketch17" plane through (-38.5, 0, 0) normal (1, 0, 0) x (0, 0, -1)
  arc A0 (34, 105) -> (46, 53.25) centre (151.5034, 104.9809) ccw
  line L0 (34, 105) -> (46, 105)
  line L1 (46, 105) -> (46, 53.25)
extrude "Extrude14" cut sketch "Sketch17" along normal blind 3
ref_plane "WorkPlane16" through (0, 0, -56) normal (0, 0, 1) x (1, 0, 0)
sketch "Sketch18" plane through (0, 0, -56) normal (0, 0, 1) x (1, 0, 0)
  line L0 (39.25, 31.25) -> (44.25, 31.25)
  line L1 (44.25, 31.25) -> (44.25, 110)
  line L2 (44.25, 110) -> (39.25, 110)
  line L3 (39.25, 110) -> (39.25, 31.25)
extrude "Extrude15" cut sketch "Sketch18" along normal blind 56
